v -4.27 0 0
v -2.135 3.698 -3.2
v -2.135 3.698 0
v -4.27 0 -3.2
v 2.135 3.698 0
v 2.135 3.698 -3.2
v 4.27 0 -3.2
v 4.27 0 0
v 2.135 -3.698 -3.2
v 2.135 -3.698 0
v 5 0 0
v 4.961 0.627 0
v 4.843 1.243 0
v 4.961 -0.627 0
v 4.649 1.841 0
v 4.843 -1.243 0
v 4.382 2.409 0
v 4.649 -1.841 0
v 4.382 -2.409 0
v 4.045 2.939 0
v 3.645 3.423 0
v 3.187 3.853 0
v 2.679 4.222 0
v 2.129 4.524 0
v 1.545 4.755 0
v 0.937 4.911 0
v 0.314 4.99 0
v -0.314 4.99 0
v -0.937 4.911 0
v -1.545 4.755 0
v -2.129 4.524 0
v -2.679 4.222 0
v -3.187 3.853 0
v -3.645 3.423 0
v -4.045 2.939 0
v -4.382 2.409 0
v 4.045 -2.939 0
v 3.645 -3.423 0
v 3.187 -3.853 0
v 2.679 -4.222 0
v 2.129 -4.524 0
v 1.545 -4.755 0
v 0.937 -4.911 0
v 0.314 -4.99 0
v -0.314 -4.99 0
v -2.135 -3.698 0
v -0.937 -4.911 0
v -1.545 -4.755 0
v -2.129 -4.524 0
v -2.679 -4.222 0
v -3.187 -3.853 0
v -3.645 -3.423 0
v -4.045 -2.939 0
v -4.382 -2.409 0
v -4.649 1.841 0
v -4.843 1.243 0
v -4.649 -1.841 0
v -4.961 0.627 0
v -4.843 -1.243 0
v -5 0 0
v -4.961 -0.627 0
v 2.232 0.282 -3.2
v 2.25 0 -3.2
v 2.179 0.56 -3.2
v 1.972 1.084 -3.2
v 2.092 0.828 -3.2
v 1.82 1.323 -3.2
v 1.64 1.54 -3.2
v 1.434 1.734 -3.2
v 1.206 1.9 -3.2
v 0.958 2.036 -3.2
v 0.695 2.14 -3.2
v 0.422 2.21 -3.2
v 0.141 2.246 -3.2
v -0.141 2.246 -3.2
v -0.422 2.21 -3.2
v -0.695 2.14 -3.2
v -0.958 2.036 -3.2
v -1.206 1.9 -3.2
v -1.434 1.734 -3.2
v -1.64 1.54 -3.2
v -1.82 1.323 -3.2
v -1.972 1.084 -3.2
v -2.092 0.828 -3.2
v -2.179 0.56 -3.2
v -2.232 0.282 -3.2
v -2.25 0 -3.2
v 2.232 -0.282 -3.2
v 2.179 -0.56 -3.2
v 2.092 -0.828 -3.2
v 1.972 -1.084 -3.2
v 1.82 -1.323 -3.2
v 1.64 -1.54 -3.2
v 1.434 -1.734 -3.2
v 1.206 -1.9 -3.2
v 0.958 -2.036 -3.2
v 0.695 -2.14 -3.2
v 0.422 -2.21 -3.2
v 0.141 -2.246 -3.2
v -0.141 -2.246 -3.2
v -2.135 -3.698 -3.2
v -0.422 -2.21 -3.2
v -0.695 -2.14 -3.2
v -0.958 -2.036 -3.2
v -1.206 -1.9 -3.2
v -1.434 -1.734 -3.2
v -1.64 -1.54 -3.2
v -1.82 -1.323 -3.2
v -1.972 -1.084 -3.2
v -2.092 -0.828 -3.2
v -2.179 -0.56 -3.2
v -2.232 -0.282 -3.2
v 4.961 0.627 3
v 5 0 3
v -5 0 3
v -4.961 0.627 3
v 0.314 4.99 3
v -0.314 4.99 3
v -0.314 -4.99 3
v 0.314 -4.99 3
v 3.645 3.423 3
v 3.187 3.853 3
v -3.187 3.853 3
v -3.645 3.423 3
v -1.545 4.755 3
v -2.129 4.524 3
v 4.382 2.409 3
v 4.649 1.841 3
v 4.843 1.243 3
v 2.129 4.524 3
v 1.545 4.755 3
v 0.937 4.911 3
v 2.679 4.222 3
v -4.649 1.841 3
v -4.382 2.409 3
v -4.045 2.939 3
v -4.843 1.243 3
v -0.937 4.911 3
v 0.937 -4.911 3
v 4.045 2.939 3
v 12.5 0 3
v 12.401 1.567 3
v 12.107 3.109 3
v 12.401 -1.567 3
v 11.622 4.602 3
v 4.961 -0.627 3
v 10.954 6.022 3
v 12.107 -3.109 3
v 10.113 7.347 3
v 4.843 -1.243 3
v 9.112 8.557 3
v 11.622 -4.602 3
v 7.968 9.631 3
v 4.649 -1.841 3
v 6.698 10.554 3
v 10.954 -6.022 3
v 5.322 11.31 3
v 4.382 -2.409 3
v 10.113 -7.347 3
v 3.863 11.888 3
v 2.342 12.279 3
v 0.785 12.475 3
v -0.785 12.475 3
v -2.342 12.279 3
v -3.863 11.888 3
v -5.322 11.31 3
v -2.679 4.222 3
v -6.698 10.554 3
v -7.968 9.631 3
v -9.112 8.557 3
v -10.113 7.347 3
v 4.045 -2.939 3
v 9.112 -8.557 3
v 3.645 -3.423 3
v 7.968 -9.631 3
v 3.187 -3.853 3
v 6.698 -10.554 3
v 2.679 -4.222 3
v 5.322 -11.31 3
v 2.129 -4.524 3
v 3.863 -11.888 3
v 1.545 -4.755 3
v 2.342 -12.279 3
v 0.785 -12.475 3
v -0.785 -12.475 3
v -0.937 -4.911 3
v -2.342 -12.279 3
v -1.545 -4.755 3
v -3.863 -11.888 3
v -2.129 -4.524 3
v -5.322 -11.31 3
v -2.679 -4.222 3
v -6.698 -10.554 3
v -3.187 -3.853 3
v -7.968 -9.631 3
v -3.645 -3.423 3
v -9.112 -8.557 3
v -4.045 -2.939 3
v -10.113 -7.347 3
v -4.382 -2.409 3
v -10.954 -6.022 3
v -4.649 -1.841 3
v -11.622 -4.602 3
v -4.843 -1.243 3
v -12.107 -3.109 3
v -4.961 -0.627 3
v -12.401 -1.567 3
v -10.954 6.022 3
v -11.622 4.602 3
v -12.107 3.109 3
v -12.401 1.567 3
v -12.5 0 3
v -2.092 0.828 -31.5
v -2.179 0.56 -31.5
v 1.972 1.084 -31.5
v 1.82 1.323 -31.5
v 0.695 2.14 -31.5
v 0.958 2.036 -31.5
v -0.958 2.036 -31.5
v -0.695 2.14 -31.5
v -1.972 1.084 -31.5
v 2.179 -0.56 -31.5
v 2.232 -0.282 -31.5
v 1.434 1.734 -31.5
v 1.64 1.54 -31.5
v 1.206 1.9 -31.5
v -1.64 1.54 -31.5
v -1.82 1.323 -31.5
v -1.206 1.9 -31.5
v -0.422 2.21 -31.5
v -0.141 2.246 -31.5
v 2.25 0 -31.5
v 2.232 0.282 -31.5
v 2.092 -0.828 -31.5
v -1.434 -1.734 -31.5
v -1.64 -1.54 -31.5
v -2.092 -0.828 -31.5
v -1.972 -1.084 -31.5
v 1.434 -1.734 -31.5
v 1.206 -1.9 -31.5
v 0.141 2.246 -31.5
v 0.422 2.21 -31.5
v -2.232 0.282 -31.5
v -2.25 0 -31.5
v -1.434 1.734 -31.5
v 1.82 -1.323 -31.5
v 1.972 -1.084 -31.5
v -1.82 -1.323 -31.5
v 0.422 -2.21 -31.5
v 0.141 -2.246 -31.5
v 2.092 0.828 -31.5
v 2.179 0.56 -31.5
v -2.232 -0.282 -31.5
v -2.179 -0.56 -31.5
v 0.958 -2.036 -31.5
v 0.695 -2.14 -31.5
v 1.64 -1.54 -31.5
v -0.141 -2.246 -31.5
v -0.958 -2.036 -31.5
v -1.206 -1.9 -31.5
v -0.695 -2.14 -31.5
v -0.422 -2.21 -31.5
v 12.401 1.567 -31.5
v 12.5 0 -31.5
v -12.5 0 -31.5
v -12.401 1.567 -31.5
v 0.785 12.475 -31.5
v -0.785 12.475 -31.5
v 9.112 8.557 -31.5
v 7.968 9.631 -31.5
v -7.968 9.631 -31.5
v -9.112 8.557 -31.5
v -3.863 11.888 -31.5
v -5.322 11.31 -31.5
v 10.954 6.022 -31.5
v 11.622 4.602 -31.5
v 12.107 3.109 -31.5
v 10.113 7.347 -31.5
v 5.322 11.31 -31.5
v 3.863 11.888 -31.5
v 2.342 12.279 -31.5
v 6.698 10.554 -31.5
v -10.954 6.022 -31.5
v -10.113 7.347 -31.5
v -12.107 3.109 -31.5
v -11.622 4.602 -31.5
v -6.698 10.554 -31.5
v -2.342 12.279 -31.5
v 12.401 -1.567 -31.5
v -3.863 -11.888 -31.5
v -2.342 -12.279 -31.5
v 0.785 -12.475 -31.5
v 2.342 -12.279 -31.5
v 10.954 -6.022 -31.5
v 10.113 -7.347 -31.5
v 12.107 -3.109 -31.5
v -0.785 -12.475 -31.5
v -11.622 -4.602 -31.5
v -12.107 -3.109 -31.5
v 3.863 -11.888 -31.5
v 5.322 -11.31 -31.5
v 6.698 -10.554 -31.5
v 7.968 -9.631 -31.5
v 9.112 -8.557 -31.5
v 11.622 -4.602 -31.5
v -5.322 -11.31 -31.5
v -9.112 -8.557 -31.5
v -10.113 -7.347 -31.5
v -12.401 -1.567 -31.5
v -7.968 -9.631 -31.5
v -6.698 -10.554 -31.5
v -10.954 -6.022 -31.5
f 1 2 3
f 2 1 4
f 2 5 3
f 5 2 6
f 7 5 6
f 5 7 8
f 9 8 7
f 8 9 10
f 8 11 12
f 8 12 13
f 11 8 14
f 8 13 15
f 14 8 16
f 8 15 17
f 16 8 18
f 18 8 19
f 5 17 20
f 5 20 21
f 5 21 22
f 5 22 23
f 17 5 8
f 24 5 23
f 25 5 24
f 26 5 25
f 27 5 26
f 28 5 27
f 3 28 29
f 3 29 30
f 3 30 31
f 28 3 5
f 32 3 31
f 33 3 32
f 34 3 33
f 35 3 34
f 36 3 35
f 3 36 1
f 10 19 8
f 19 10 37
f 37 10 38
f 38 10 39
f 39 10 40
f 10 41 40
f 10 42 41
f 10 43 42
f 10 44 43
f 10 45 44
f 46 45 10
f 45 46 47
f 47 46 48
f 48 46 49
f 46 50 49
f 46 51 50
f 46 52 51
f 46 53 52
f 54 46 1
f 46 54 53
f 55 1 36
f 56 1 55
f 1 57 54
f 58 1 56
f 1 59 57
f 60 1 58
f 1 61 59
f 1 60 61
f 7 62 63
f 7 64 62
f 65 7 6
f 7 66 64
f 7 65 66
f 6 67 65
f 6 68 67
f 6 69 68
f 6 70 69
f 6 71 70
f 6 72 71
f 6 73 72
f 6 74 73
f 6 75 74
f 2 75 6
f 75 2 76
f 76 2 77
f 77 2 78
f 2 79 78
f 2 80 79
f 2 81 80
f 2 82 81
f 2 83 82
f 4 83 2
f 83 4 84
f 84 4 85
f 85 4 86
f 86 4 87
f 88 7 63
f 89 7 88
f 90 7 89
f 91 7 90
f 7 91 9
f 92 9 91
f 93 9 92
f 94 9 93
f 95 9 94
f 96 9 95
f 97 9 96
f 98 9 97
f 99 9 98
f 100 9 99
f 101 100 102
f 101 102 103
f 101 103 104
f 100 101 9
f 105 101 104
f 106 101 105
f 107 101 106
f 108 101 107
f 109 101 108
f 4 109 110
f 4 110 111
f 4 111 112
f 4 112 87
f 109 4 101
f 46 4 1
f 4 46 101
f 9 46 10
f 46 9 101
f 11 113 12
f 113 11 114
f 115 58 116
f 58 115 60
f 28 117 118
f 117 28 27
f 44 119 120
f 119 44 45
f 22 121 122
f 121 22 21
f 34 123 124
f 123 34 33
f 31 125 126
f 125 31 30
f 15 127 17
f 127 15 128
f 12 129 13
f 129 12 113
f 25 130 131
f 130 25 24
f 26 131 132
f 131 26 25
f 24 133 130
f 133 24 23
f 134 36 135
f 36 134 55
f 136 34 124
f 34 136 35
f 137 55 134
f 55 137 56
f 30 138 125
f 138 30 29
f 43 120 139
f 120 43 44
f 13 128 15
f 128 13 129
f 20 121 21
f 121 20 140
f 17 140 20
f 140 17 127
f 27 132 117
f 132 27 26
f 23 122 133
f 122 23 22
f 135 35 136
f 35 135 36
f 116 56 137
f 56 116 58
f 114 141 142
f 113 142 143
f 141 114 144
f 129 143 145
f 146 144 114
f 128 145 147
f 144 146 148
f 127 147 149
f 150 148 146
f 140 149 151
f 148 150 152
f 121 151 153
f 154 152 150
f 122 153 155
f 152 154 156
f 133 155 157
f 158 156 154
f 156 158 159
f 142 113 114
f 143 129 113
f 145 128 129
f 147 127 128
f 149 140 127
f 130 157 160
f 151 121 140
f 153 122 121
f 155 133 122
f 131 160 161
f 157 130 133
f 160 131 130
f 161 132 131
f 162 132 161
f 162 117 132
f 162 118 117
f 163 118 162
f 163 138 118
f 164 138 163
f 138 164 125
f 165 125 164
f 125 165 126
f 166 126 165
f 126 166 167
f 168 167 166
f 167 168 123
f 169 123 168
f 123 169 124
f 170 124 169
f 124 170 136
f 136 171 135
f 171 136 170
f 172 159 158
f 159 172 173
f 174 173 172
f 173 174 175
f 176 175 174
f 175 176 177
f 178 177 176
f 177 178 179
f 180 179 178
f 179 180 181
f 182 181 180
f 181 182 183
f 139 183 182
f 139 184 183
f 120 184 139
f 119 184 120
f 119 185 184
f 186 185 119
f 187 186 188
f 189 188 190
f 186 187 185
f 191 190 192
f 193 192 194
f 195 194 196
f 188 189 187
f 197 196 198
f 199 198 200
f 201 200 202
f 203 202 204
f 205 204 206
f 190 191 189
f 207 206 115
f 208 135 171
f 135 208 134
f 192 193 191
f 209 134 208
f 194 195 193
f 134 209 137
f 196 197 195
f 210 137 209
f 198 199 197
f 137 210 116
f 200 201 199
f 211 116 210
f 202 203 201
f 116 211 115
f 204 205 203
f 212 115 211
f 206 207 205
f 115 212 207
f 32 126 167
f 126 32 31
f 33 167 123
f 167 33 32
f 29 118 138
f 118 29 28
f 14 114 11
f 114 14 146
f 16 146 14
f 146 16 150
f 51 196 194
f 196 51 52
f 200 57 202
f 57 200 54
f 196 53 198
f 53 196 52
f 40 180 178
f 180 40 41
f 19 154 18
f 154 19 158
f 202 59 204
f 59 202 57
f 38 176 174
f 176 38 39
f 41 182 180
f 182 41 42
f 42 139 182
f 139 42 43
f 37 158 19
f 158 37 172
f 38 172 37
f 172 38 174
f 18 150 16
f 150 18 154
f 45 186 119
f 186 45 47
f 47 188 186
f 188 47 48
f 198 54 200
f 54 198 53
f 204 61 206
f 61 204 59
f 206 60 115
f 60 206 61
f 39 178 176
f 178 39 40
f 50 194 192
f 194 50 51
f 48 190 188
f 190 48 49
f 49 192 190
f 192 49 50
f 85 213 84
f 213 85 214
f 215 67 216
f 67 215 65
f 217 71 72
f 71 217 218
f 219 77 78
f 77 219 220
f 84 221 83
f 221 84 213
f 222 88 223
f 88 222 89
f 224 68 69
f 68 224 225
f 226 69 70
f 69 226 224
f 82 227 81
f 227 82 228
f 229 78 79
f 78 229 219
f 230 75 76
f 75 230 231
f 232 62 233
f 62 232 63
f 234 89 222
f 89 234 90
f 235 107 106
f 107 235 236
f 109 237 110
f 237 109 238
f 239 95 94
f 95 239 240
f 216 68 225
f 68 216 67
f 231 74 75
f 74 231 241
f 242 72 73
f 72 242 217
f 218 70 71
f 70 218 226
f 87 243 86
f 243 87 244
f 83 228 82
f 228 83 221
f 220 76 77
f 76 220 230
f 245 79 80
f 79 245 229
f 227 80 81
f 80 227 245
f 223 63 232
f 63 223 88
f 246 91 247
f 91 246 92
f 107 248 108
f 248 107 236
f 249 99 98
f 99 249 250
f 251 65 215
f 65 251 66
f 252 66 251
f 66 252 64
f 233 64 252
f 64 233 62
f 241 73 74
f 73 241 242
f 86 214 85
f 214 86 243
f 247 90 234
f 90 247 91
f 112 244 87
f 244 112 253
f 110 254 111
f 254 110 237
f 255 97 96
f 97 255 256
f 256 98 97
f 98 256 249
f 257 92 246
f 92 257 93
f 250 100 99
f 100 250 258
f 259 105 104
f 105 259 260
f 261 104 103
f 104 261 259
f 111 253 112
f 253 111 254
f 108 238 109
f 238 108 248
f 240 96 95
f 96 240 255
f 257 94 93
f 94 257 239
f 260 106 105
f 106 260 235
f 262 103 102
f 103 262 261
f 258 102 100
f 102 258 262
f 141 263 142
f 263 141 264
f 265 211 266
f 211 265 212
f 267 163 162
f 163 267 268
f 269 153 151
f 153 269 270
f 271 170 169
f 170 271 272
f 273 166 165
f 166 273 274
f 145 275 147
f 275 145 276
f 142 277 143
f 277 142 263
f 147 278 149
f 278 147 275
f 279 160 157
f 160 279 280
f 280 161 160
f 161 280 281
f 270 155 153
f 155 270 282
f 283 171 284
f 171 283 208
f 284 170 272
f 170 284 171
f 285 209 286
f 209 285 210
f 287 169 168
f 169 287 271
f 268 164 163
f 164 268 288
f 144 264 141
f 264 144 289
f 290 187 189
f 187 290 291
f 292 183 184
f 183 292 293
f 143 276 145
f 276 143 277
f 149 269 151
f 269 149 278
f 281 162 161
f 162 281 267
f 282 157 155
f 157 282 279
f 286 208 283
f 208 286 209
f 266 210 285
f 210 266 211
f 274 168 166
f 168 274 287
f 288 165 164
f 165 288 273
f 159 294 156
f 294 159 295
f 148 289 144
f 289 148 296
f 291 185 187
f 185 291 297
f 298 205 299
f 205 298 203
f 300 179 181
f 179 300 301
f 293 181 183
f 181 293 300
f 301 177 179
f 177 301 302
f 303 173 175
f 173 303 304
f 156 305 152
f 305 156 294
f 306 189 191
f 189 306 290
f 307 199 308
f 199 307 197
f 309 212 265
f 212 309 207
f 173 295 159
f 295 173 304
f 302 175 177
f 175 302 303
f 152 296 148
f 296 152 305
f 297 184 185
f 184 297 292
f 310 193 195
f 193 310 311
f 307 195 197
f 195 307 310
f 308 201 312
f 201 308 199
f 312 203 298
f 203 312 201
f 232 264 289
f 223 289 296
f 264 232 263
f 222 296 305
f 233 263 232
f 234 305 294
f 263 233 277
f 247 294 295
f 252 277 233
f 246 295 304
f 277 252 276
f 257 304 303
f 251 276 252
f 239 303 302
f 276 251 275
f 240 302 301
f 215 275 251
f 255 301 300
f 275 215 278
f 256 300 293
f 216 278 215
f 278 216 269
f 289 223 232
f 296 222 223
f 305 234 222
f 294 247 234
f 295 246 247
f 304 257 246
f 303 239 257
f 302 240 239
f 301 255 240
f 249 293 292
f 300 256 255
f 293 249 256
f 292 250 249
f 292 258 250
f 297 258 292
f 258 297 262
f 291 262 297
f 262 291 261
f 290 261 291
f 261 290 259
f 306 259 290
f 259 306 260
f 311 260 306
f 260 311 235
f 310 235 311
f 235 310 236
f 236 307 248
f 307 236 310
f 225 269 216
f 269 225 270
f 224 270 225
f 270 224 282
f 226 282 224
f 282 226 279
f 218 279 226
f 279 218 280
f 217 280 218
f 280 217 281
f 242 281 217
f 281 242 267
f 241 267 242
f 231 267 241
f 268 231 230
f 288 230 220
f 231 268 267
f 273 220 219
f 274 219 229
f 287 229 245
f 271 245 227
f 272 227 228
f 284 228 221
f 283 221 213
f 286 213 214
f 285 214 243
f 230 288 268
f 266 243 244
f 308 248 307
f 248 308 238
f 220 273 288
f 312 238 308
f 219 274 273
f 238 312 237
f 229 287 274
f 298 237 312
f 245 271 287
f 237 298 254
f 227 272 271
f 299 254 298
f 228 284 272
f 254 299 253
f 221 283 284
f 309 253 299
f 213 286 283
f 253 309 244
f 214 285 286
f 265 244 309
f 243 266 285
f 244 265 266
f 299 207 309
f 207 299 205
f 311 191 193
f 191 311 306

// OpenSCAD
$fn = 50;

difference() {
	union() {
		translate(v = [0, 0, -31.5]) {
			cylinder(h = 34.5, r = 12.5);
		}
	}
	union() {
		translate(v = [0, 0, 0]) {
			rotate(a = [0, 0, 0]) {
				difference() {
					union() {
						translate(v = [0, 0, -3.2]) {
							linear_extrude(height = 3.2) {
								polygon(points = [[4.2698, 0.0], [2.1349000000000005, 3.697755269078796], [-2.134899999999999, 3.6977552690787965], [-4.2698, 5.228996902999369e-16], [-2.134900000000002, -3.6977552690787956], [2.1348999999999974, -3.697755269078798]]);
							}
						}
					}
					union();
				}
			}
		}
		#cylinder(h = 3, r = 5.0);
		#translate(v = [0, 0, -100.0]) {
			cylinder(h = 200, r = 2.25);
		}
	}
}
